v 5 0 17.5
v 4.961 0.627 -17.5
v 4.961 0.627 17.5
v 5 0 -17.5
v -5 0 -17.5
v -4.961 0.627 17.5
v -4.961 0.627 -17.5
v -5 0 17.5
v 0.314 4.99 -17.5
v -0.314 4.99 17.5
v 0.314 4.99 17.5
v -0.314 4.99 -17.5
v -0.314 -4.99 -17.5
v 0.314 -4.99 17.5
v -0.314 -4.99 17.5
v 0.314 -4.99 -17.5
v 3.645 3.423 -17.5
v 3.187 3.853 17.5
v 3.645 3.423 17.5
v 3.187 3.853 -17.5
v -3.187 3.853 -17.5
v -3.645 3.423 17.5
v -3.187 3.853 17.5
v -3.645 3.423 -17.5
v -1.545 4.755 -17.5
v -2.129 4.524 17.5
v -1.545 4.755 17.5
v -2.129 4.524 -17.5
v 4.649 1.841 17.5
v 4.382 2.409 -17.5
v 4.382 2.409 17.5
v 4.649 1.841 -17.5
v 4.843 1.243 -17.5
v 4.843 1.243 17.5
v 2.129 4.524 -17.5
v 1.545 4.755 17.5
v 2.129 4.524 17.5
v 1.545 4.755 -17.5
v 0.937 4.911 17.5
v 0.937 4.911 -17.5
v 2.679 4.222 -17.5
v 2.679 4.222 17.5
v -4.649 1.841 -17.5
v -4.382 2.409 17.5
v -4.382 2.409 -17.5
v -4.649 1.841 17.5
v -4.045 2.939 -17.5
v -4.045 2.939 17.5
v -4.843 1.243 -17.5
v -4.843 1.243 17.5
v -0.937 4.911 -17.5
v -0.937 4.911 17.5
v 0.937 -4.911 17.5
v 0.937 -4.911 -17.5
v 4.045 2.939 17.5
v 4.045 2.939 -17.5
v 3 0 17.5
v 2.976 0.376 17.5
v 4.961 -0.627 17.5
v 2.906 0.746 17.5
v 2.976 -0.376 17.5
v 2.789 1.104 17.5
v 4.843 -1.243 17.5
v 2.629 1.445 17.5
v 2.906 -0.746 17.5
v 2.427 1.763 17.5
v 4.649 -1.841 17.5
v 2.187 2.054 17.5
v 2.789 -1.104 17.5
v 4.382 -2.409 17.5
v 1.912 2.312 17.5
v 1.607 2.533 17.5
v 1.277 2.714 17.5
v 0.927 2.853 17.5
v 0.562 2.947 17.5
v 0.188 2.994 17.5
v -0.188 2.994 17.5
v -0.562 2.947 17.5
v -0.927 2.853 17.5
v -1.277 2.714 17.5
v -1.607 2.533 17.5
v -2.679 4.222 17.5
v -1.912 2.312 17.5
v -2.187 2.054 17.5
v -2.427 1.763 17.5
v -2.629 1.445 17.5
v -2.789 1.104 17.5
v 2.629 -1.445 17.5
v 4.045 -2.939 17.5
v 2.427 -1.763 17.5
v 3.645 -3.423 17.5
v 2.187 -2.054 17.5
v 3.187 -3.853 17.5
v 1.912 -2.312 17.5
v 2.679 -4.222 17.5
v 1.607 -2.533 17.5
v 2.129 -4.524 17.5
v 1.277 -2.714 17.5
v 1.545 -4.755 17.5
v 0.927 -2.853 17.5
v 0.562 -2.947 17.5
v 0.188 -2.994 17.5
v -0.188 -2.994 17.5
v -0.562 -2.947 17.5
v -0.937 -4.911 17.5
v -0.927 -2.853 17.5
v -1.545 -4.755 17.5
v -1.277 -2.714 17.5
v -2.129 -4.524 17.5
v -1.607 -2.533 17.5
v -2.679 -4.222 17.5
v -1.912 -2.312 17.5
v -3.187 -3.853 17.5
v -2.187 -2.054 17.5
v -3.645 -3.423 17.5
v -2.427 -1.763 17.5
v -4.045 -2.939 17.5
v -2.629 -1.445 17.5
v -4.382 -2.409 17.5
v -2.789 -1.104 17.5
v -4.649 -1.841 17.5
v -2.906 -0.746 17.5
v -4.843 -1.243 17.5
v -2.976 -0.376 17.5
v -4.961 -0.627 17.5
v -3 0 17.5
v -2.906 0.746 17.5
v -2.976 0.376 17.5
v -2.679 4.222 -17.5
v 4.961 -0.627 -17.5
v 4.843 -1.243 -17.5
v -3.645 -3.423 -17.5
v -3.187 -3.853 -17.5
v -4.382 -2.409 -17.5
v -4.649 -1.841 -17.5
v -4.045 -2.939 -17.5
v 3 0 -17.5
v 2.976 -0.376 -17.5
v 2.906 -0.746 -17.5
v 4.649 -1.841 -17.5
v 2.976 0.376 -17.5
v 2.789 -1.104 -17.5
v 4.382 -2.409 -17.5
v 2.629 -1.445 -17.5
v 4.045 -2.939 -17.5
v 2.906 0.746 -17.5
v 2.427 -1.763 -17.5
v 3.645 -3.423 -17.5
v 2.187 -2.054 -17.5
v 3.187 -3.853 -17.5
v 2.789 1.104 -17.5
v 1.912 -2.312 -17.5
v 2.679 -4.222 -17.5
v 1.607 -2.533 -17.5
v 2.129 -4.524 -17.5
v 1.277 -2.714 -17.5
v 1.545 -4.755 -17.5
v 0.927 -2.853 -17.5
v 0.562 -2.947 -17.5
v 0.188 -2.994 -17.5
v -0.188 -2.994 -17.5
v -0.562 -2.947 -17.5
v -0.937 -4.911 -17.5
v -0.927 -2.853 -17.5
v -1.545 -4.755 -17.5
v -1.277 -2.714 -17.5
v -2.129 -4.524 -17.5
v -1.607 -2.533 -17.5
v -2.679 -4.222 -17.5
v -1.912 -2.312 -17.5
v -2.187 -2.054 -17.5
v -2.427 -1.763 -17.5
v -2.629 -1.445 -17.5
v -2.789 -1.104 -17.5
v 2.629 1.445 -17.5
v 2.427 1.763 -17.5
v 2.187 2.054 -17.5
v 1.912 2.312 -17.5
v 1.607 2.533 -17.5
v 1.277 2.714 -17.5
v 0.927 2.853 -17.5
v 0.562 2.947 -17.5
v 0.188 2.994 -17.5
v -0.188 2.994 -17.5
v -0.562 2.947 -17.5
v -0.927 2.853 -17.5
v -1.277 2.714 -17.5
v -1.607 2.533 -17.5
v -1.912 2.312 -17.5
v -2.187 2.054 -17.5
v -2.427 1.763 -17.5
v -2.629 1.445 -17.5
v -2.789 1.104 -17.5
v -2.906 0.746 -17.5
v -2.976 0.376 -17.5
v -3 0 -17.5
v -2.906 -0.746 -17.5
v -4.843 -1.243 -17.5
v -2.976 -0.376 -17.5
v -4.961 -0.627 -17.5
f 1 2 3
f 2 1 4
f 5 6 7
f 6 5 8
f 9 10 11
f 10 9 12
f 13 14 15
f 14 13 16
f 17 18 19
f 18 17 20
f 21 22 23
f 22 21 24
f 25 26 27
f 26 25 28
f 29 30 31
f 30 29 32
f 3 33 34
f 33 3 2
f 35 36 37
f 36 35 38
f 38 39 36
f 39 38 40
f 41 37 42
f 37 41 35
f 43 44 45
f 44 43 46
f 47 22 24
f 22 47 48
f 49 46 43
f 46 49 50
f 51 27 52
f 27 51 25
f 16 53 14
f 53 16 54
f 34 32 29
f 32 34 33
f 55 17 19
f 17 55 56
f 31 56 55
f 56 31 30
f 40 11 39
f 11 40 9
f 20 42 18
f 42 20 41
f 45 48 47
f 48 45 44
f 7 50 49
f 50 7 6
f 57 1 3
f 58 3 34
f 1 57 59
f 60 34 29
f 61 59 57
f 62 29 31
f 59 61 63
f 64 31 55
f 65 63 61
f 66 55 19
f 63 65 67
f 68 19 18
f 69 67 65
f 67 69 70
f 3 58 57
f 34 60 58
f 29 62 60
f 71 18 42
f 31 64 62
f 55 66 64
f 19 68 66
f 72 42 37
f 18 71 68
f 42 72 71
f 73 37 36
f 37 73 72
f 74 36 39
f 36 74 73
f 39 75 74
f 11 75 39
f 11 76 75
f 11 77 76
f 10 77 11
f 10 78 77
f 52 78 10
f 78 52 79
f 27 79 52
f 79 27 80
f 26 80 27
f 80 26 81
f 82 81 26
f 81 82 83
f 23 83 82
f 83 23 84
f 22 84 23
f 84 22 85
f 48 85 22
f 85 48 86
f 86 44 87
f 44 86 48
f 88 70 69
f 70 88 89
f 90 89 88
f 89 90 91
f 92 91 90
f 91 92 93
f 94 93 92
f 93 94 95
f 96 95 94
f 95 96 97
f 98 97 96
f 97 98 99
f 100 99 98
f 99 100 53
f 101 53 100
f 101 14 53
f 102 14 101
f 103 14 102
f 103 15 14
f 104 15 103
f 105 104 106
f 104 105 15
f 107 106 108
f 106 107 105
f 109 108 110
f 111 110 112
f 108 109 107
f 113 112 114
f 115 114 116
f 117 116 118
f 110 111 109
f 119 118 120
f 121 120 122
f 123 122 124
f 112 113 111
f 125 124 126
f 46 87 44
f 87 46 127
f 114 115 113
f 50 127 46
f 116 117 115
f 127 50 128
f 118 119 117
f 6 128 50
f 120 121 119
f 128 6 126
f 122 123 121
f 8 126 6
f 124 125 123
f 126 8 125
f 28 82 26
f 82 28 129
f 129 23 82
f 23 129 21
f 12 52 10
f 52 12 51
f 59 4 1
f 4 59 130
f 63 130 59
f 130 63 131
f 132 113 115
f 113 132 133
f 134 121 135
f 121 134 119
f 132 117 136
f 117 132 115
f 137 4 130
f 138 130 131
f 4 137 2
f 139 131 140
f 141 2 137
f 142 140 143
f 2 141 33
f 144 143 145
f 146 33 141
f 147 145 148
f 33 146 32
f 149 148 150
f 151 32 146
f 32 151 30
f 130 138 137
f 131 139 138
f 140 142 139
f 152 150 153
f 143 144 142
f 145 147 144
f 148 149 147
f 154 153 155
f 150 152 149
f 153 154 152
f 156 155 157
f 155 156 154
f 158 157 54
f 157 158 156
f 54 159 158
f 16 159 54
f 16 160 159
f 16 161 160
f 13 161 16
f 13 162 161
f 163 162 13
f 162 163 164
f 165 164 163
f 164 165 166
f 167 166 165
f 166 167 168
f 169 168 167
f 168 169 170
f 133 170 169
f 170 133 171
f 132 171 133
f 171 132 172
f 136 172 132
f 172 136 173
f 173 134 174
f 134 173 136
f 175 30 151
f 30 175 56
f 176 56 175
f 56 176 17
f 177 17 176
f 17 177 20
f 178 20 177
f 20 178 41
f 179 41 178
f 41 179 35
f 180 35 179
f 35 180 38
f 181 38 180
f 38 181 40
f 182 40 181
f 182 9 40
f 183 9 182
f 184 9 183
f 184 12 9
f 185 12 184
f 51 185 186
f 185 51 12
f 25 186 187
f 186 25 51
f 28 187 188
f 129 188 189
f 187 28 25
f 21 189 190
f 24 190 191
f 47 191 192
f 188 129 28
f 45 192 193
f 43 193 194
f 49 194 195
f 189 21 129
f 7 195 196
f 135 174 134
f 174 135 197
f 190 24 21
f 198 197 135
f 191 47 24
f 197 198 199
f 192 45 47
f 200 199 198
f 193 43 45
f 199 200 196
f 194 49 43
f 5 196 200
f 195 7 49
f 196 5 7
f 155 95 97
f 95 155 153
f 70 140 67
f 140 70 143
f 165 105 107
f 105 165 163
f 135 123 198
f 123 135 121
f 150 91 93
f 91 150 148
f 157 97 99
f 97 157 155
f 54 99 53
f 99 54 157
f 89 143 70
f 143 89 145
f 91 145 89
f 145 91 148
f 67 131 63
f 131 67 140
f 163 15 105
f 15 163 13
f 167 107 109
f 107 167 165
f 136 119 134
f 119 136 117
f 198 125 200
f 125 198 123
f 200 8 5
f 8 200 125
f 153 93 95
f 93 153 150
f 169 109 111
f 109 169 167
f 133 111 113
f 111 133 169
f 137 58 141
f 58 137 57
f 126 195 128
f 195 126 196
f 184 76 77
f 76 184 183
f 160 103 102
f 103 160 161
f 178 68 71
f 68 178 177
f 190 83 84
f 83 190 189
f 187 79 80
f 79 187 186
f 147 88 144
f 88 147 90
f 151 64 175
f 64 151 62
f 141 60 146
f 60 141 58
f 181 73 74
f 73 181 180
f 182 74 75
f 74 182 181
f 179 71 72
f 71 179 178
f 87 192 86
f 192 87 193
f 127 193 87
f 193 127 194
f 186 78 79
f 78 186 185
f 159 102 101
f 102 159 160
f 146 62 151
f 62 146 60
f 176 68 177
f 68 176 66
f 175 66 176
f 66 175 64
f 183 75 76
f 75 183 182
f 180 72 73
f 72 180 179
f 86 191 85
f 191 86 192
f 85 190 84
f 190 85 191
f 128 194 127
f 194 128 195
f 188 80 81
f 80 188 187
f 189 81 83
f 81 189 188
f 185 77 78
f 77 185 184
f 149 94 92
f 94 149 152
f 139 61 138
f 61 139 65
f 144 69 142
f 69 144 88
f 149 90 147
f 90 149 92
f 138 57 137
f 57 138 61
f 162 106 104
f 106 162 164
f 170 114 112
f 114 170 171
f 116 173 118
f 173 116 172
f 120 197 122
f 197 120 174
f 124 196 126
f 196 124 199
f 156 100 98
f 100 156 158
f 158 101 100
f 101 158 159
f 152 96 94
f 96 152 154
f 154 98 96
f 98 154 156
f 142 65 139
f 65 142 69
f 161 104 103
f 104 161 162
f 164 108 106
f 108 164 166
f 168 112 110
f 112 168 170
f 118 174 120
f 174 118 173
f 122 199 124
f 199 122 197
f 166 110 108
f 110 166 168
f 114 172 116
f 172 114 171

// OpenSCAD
$fn = 50;


difference() {
	union() {
		translate(v = [0, 0, -17.5000000000]) {
			cylinder(h = 35, r = 5.0000000000);
		}
	}
	union() {
		translate(v = [0, 0, -100.0000000000]) {
			cylinder(h = 200, r = 3);
		}
	}
}
